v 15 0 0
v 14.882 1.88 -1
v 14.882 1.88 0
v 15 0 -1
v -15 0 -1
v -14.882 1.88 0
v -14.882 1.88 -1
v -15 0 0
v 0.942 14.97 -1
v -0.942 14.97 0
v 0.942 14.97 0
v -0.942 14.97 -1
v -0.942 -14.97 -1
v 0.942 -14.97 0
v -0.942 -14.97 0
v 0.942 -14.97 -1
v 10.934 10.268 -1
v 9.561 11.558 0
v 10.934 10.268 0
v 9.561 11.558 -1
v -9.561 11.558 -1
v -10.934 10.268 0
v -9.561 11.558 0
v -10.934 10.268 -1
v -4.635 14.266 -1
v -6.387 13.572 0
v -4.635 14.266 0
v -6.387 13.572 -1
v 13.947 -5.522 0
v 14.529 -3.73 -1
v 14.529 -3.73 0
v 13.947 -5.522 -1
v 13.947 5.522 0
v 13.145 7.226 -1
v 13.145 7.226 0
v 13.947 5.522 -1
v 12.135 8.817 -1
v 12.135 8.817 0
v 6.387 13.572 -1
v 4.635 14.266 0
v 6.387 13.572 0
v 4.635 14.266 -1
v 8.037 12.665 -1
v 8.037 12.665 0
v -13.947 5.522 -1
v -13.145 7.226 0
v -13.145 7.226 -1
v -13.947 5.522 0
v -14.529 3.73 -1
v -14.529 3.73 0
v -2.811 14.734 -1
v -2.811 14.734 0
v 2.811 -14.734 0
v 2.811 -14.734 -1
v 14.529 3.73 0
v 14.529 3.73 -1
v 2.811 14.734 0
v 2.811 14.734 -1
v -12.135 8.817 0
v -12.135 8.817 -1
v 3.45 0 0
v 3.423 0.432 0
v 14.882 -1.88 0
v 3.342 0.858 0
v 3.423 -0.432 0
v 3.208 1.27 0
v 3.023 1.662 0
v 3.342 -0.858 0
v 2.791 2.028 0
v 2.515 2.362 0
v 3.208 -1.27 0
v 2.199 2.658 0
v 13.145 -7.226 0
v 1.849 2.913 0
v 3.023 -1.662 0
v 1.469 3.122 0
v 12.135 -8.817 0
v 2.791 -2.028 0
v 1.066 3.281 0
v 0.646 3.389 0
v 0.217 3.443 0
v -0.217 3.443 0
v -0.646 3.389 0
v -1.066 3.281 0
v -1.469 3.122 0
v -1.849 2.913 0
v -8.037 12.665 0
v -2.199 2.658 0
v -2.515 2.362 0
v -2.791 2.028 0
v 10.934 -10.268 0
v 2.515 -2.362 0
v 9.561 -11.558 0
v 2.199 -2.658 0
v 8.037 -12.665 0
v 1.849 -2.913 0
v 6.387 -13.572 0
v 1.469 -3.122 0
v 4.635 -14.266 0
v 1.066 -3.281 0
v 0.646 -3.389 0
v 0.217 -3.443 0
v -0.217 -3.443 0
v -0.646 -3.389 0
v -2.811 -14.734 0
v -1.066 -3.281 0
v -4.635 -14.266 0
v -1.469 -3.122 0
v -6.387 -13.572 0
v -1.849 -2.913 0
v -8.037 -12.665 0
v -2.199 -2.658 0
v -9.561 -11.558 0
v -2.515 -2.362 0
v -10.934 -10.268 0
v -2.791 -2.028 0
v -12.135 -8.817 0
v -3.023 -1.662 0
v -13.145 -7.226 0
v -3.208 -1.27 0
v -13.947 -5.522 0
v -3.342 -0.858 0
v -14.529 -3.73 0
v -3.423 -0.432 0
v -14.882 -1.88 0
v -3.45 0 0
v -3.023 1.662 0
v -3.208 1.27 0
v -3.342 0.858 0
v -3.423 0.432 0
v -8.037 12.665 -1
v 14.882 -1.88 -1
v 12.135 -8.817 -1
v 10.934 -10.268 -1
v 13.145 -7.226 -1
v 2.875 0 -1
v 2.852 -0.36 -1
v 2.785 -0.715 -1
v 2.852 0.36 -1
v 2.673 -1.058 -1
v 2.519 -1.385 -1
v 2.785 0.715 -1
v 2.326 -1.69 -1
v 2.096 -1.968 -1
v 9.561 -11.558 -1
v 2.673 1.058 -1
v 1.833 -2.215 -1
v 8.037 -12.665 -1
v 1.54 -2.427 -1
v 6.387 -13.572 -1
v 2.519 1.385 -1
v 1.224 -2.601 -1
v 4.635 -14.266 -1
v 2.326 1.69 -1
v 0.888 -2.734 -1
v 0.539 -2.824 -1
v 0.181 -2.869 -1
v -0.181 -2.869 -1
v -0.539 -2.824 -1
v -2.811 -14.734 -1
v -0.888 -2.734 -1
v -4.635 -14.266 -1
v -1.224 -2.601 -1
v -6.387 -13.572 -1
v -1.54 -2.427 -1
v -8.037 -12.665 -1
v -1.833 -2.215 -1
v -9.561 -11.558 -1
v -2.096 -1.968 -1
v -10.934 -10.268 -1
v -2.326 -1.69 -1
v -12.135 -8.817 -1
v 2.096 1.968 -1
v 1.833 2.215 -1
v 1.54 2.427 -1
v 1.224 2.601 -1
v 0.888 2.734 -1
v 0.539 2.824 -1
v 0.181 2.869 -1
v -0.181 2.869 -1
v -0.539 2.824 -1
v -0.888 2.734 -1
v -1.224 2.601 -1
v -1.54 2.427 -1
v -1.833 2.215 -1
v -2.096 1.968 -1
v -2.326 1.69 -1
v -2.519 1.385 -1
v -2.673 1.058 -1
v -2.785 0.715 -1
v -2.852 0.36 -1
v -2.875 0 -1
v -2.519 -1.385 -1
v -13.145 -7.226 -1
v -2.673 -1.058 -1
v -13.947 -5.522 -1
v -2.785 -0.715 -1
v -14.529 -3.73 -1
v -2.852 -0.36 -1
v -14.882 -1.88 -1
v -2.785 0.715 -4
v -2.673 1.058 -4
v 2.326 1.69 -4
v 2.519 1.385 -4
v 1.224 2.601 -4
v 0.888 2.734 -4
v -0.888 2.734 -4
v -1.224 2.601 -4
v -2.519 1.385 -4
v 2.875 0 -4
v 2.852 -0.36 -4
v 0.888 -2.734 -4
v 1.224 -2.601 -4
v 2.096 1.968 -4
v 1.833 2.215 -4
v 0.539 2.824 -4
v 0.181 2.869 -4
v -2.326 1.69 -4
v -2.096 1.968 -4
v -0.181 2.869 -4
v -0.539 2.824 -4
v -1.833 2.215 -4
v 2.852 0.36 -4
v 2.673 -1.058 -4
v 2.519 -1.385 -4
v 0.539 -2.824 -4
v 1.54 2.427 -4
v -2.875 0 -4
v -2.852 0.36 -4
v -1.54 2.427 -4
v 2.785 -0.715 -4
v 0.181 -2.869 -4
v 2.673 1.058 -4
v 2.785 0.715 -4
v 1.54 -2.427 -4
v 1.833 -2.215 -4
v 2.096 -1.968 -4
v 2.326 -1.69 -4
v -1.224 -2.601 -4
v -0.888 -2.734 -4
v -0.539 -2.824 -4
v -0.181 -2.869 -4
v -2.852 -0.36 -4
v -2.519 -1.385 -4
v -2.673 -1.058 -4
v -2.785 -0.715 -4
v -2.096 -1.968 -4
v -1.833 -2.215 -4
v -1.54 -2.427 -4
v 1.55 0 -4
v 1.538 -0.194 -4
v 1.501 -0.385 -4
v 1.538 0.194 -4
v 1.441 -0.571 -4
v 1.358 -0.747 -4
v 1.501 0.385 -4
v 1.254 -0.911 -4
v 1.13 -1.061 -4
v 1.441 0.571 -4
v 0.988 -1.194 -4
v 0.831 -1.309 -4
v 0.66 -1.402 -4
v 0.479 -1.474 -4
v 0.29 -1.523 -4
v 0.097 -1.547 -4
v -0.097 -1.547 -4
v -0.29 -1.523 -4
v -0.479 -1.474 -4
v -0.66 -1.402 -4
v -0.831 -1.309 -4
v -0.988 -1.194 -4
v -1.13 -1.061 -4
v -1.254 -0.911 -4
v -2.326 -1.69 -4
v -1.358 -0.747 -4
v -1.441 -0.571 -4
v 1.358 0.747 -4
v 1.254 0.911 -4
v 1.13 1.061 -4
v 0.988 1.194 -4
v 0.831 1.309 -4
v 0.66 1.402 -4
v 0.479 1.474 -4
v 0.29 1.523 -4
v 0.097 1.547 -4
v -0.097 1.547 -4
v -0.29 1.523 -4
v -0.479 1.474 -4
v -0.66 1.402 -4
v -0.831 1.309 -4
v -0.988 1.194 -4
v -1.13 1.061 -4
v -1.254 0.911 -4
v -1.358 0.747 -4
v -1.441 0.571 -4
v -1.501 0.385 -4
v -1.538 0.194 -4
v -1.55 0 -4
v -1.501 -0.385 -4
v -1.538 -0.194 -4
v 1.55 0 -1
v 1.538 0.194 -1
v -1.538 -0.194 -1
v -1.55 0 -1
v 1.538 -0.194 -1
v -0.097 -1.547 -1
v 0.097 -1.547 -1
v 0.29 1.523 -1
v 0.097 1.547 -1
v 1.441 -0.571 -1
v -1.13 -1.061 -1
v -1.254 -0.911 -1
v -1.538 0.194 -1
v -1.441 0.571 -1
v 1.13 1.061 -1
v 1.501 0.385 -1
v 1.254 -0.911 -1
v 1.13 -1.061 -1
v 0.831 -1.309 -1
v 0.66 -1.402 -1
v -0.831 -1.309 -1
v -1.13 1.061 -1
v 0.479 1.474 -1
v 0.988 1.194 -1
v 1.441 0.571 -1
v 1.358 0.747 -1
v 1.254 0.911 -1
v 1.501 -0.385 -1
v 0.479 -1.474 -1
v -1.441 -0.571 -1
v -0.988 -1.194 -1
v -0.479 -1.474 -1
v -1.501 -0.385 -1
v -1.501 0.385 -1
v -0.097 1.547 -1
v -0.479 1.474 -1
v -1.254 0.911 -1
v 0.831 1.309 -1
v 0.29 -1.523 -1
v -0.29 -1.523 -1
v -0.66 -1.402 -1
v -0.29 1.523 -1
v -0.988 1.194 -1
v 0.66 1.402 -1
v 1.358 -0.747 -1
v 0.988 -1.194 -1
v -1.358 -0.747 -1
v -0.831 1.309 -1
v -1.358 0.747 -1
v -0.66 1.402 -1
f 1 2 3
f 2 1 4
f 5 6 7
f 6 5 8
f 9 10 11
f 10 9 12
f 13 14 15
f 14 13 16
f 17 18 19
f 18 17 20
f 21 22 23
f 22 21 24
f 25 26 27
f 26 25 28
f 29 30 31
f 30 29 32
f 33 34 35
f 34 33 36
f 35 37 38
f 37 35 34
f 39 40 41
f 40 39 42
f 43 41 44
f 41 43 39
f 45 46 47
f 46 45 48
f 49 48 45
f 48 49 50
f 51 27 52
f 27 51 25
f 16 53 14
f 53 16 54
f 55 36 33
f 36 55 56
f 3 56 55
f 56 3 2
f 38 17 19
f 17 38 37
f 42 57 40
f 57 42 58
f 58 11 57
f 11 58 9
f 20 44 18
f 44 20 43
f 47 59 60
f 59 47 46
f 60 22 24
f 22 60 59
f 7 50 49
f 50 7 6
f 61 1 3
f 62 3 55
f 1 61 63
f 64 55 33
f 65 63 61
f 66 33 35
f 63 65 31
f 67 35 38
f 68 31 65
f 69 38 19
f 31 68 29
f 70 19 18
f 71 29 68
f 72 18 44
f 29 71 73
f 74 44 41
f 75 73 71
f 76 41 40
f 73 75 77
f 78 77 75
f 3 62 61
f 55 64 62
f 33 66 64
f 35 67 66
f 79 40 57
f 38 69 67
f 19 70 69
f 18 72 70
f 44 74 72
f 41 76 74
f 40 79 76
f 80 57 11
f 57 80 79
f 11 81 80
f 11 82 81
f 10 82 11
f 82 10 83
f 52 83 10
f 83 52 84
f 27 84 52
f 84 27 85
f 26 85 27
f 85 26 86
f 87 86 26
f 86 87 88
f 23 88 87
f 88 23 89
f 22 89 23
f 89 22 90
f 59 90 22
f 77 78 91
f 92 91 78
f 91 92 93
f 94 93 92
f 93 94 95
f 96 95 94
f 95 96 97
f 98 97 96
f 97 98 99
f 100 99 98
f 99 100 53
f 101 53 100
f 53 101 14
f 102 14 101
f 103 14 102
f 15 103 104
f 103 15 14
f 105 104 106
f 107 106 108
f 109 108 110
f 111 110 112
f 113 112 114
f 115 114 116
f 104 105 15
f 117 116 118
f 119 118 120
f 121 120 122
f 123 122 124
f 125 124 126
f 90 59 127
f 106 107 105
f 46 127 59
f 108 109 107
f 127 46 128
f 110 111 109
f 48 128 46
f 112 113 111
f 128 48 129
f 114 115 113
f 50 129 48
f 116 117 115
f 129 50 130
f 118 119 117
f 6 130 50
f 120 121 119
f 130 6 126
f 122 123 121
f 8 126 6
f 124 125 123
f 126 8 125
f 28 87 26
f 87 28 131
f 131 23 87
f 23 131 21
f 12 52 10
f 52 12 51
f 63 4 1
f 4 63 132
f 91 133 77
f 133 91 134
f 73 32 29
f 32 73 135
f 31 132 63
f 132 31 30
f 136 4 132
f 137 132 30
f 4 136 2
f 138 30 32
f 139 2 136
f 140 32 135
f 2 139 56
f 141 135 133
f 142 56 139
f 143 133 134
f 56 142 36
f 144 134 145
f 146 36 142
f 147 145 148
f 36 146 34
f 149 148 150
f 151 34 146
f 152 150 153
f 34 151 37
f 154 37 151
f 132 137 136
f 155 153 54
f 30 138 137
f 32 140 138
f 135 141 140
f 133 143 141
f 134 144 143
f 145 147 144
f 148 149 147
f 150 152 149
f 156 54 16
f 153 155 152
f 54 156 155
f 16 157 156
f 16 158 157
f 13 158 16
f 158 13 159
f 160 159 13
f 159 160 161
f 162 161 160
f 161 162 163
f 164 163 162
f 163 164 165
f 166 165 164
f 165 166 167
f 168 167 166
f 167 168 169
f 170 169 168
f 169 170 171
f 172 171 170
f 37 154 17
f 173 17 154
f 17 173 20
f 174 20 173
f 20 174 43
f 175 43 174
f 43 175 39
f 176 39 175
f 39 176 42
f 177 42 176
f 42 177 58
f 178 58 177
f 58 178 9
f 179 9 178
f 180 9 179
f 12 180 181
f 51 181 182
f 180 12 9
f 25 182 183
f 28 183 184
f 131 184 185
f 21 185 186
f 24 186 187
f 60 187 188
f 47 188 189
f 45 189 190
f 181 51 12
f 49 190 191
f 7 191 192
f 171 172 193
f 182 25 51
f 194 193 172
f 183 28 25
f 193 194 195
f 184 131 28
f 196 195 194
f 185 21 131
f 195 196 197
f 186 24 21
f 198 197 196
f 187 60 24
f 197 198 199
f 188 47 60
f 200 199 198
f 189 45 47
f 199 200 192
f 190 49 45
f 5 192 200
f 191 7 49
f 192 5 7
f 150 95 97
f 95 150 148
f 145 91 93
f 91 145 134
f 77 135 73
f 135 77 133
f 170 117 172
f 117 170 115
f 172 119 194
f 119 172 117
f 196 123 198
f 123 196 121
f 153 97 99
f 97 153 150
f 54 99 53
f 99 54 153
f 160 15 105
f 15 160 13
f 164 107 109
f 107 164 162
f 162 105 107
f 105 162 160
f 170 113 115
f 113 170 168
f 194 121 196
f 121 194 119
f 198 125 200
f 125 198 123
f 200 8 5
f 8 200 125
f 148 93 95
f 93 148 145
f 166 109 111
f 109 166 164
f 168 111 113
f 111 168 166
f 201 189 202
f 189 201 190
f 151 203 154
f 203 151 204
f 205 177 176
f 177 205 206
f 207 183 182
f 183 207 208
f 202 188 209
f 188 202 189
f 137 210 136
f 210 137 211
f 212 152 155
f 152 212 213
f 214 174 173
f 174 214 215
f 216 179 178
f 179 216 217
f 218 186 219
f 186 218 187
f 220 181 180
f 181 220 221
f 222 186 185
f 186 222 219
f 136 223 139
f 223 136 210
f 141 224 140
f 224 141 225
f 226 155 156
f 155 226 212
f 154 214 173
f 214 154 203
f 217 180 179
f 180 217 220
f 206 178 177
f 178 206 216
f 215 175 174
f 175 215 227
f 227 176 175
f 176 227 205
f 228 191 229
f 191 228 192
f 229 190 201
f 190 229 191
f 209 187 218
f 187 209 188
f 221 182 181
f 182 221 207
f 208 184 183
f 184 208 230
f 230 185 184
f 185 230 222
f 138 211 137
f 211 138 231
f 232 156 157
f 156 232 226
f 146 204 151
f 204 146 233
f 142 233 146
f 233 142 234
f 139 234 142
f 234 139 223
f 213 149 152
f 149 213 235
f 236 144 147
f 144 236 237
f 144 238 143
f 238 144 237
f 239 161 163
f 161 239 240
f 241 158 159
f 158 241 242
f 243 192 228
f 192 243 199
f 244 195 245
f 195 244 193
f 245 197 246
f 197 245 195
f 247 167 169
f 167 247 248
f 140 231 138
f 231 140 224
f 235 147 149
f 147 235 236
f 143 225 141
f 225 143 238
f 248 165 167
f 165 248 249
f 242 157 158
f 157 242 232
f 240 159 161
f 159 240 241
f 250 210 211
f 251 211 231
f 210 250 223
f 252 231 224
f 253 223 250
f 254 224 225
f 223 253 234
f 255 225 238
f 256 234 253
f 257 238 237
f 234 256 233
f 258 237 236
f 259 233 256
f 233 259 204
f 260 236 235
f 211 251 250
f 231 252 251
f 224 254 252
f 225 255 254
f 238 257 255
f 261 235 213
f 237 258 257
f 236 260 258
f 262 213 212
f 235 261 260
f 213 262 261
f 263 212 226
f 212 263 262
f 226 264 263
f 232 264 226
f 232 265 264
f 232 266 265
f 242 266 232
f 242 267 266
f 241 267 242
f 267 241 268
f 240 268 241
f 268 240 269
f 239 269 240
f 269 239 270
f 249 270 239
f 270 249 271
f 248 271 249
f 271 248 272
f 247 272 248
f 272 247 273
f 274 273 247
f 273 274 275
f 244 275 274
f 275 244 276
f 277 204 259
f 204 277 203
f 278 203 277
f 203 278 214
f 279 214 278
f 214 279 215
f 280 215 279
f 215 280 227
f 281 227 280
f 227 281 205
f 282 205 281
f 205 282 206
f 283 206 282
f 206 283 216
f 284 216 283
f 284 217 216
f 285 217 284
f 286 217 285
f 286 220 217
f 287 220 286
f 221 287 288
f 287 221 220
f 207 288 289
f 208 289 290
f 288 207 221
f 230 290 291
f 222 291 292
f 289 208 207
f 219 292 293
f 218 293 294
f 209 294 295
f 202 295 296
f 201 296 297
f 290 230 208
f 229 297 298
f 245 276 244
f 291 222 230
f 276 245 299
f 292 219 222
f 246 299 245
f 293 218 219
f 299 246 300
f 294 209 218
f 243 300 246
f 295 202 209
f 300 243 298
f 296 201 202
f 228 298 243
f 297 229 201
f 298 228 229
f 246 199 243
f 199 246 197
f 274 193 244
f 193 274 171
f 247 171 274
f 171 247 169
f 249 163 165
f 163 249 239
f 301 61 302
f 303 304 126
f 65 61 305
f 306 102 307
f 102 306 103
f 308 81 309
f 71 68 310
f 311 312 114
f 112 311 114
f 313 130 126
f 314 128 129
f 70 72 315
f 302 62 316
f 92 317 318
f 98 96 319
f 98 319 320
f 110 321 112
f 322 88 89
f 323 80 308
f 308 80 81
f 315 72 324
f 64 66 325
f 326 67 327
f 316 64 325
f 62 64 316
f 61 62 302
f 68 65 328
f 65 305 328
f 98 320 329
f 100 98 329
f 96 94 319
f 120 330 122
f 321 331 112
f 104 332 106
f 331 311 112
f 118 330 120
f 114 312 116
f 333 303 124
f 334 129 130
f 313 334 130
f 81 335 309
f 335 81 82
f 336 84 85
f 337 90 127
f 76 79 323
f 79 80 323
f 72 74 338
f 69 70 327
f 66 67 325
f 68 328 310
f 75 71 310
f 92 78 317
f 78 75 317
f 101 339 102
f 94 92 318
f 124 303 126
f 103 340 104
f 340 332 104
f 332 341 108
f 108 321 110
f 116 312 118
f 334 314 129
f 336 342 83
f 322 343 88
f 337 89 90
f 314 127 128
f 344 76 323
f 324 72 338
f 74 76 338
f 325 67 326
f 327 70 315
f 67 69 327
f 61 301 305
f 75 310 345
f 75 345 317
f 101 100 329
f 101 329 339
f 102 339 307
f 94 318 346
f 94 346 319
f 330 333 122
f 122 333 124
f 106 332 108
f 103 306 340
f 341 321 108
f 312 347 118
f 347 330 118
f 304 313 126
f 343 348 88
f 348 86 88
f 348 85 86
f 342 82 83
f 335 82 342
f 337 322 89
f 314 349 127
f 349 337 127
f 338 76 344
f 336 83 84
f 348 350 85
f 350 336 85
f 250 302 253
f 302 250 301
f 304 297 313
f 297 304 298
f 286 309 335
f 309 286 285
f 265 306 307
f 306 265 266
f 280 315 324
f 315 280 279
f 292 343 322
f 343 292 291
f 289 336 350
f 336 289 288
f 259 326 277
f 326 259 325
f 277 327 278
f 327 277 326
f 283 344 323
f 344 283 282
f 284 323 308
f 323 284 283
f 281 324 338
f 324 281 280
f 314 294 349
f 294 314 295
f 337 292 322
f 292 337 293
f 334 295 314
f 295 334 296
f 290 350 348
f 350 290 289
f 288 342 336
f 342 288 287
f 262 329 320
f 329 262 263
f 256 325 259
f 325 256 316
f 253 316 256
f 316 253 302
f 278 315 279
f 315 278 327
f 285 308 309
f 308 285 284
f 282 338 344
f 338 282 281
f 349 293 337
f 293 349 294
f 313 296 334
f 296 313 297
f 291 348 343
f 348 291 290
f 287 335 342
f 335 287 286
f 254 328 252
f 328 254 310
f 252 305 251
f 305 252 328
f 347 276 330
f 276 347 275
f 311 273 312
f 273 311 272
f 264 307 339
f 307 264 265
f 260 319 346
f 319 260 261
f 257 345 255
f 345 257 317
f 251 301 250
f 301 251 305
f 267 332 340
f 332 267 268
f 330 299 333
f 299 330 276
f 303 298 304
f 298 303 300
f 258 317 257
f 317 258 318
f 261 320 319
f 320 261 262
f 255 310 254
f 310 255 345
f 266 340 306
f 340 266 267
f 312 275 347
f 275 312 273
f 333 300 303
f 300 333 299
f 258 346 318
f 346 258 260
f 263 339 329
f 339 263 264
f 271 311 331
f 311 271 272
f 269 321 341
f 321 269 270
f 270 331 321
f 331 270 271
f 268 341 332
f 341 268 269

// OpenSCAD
$fn = 50;

difference() {
	union() {
		translate(v = [0, 0, -1.0]) {
			cylinder(h = 1.0, r = 15.0);
		}
		#translate(v = [0, 0, -4.0]) {
			cylinder(h = 4.0, r = 2.875);
		}
	}
	union() {
		translate(v = [0, 0, 0]) {
			rotate(a = [0, 0, 0]) {
				difference() {
					union() {
						translate(v = [0, 0, -4.0]) {
							cylinder(h = 4.0, r = 1.25);
						}
						translate(v = [0, 0, -1.0]) {
							cylinder(h = 1.0, r1 = 1.55, r2 = 3.45);
						}
						translate(v = [0, 0, -4.0]) {
							cylinder(h = 4.0, r = 1.55);
						}
						translate(v = [0, 0, -4.0]) {
							cylinder(h = 4.0, r = 1.25);
						}
					}
					union();
				}
			}
		}
	}
}
